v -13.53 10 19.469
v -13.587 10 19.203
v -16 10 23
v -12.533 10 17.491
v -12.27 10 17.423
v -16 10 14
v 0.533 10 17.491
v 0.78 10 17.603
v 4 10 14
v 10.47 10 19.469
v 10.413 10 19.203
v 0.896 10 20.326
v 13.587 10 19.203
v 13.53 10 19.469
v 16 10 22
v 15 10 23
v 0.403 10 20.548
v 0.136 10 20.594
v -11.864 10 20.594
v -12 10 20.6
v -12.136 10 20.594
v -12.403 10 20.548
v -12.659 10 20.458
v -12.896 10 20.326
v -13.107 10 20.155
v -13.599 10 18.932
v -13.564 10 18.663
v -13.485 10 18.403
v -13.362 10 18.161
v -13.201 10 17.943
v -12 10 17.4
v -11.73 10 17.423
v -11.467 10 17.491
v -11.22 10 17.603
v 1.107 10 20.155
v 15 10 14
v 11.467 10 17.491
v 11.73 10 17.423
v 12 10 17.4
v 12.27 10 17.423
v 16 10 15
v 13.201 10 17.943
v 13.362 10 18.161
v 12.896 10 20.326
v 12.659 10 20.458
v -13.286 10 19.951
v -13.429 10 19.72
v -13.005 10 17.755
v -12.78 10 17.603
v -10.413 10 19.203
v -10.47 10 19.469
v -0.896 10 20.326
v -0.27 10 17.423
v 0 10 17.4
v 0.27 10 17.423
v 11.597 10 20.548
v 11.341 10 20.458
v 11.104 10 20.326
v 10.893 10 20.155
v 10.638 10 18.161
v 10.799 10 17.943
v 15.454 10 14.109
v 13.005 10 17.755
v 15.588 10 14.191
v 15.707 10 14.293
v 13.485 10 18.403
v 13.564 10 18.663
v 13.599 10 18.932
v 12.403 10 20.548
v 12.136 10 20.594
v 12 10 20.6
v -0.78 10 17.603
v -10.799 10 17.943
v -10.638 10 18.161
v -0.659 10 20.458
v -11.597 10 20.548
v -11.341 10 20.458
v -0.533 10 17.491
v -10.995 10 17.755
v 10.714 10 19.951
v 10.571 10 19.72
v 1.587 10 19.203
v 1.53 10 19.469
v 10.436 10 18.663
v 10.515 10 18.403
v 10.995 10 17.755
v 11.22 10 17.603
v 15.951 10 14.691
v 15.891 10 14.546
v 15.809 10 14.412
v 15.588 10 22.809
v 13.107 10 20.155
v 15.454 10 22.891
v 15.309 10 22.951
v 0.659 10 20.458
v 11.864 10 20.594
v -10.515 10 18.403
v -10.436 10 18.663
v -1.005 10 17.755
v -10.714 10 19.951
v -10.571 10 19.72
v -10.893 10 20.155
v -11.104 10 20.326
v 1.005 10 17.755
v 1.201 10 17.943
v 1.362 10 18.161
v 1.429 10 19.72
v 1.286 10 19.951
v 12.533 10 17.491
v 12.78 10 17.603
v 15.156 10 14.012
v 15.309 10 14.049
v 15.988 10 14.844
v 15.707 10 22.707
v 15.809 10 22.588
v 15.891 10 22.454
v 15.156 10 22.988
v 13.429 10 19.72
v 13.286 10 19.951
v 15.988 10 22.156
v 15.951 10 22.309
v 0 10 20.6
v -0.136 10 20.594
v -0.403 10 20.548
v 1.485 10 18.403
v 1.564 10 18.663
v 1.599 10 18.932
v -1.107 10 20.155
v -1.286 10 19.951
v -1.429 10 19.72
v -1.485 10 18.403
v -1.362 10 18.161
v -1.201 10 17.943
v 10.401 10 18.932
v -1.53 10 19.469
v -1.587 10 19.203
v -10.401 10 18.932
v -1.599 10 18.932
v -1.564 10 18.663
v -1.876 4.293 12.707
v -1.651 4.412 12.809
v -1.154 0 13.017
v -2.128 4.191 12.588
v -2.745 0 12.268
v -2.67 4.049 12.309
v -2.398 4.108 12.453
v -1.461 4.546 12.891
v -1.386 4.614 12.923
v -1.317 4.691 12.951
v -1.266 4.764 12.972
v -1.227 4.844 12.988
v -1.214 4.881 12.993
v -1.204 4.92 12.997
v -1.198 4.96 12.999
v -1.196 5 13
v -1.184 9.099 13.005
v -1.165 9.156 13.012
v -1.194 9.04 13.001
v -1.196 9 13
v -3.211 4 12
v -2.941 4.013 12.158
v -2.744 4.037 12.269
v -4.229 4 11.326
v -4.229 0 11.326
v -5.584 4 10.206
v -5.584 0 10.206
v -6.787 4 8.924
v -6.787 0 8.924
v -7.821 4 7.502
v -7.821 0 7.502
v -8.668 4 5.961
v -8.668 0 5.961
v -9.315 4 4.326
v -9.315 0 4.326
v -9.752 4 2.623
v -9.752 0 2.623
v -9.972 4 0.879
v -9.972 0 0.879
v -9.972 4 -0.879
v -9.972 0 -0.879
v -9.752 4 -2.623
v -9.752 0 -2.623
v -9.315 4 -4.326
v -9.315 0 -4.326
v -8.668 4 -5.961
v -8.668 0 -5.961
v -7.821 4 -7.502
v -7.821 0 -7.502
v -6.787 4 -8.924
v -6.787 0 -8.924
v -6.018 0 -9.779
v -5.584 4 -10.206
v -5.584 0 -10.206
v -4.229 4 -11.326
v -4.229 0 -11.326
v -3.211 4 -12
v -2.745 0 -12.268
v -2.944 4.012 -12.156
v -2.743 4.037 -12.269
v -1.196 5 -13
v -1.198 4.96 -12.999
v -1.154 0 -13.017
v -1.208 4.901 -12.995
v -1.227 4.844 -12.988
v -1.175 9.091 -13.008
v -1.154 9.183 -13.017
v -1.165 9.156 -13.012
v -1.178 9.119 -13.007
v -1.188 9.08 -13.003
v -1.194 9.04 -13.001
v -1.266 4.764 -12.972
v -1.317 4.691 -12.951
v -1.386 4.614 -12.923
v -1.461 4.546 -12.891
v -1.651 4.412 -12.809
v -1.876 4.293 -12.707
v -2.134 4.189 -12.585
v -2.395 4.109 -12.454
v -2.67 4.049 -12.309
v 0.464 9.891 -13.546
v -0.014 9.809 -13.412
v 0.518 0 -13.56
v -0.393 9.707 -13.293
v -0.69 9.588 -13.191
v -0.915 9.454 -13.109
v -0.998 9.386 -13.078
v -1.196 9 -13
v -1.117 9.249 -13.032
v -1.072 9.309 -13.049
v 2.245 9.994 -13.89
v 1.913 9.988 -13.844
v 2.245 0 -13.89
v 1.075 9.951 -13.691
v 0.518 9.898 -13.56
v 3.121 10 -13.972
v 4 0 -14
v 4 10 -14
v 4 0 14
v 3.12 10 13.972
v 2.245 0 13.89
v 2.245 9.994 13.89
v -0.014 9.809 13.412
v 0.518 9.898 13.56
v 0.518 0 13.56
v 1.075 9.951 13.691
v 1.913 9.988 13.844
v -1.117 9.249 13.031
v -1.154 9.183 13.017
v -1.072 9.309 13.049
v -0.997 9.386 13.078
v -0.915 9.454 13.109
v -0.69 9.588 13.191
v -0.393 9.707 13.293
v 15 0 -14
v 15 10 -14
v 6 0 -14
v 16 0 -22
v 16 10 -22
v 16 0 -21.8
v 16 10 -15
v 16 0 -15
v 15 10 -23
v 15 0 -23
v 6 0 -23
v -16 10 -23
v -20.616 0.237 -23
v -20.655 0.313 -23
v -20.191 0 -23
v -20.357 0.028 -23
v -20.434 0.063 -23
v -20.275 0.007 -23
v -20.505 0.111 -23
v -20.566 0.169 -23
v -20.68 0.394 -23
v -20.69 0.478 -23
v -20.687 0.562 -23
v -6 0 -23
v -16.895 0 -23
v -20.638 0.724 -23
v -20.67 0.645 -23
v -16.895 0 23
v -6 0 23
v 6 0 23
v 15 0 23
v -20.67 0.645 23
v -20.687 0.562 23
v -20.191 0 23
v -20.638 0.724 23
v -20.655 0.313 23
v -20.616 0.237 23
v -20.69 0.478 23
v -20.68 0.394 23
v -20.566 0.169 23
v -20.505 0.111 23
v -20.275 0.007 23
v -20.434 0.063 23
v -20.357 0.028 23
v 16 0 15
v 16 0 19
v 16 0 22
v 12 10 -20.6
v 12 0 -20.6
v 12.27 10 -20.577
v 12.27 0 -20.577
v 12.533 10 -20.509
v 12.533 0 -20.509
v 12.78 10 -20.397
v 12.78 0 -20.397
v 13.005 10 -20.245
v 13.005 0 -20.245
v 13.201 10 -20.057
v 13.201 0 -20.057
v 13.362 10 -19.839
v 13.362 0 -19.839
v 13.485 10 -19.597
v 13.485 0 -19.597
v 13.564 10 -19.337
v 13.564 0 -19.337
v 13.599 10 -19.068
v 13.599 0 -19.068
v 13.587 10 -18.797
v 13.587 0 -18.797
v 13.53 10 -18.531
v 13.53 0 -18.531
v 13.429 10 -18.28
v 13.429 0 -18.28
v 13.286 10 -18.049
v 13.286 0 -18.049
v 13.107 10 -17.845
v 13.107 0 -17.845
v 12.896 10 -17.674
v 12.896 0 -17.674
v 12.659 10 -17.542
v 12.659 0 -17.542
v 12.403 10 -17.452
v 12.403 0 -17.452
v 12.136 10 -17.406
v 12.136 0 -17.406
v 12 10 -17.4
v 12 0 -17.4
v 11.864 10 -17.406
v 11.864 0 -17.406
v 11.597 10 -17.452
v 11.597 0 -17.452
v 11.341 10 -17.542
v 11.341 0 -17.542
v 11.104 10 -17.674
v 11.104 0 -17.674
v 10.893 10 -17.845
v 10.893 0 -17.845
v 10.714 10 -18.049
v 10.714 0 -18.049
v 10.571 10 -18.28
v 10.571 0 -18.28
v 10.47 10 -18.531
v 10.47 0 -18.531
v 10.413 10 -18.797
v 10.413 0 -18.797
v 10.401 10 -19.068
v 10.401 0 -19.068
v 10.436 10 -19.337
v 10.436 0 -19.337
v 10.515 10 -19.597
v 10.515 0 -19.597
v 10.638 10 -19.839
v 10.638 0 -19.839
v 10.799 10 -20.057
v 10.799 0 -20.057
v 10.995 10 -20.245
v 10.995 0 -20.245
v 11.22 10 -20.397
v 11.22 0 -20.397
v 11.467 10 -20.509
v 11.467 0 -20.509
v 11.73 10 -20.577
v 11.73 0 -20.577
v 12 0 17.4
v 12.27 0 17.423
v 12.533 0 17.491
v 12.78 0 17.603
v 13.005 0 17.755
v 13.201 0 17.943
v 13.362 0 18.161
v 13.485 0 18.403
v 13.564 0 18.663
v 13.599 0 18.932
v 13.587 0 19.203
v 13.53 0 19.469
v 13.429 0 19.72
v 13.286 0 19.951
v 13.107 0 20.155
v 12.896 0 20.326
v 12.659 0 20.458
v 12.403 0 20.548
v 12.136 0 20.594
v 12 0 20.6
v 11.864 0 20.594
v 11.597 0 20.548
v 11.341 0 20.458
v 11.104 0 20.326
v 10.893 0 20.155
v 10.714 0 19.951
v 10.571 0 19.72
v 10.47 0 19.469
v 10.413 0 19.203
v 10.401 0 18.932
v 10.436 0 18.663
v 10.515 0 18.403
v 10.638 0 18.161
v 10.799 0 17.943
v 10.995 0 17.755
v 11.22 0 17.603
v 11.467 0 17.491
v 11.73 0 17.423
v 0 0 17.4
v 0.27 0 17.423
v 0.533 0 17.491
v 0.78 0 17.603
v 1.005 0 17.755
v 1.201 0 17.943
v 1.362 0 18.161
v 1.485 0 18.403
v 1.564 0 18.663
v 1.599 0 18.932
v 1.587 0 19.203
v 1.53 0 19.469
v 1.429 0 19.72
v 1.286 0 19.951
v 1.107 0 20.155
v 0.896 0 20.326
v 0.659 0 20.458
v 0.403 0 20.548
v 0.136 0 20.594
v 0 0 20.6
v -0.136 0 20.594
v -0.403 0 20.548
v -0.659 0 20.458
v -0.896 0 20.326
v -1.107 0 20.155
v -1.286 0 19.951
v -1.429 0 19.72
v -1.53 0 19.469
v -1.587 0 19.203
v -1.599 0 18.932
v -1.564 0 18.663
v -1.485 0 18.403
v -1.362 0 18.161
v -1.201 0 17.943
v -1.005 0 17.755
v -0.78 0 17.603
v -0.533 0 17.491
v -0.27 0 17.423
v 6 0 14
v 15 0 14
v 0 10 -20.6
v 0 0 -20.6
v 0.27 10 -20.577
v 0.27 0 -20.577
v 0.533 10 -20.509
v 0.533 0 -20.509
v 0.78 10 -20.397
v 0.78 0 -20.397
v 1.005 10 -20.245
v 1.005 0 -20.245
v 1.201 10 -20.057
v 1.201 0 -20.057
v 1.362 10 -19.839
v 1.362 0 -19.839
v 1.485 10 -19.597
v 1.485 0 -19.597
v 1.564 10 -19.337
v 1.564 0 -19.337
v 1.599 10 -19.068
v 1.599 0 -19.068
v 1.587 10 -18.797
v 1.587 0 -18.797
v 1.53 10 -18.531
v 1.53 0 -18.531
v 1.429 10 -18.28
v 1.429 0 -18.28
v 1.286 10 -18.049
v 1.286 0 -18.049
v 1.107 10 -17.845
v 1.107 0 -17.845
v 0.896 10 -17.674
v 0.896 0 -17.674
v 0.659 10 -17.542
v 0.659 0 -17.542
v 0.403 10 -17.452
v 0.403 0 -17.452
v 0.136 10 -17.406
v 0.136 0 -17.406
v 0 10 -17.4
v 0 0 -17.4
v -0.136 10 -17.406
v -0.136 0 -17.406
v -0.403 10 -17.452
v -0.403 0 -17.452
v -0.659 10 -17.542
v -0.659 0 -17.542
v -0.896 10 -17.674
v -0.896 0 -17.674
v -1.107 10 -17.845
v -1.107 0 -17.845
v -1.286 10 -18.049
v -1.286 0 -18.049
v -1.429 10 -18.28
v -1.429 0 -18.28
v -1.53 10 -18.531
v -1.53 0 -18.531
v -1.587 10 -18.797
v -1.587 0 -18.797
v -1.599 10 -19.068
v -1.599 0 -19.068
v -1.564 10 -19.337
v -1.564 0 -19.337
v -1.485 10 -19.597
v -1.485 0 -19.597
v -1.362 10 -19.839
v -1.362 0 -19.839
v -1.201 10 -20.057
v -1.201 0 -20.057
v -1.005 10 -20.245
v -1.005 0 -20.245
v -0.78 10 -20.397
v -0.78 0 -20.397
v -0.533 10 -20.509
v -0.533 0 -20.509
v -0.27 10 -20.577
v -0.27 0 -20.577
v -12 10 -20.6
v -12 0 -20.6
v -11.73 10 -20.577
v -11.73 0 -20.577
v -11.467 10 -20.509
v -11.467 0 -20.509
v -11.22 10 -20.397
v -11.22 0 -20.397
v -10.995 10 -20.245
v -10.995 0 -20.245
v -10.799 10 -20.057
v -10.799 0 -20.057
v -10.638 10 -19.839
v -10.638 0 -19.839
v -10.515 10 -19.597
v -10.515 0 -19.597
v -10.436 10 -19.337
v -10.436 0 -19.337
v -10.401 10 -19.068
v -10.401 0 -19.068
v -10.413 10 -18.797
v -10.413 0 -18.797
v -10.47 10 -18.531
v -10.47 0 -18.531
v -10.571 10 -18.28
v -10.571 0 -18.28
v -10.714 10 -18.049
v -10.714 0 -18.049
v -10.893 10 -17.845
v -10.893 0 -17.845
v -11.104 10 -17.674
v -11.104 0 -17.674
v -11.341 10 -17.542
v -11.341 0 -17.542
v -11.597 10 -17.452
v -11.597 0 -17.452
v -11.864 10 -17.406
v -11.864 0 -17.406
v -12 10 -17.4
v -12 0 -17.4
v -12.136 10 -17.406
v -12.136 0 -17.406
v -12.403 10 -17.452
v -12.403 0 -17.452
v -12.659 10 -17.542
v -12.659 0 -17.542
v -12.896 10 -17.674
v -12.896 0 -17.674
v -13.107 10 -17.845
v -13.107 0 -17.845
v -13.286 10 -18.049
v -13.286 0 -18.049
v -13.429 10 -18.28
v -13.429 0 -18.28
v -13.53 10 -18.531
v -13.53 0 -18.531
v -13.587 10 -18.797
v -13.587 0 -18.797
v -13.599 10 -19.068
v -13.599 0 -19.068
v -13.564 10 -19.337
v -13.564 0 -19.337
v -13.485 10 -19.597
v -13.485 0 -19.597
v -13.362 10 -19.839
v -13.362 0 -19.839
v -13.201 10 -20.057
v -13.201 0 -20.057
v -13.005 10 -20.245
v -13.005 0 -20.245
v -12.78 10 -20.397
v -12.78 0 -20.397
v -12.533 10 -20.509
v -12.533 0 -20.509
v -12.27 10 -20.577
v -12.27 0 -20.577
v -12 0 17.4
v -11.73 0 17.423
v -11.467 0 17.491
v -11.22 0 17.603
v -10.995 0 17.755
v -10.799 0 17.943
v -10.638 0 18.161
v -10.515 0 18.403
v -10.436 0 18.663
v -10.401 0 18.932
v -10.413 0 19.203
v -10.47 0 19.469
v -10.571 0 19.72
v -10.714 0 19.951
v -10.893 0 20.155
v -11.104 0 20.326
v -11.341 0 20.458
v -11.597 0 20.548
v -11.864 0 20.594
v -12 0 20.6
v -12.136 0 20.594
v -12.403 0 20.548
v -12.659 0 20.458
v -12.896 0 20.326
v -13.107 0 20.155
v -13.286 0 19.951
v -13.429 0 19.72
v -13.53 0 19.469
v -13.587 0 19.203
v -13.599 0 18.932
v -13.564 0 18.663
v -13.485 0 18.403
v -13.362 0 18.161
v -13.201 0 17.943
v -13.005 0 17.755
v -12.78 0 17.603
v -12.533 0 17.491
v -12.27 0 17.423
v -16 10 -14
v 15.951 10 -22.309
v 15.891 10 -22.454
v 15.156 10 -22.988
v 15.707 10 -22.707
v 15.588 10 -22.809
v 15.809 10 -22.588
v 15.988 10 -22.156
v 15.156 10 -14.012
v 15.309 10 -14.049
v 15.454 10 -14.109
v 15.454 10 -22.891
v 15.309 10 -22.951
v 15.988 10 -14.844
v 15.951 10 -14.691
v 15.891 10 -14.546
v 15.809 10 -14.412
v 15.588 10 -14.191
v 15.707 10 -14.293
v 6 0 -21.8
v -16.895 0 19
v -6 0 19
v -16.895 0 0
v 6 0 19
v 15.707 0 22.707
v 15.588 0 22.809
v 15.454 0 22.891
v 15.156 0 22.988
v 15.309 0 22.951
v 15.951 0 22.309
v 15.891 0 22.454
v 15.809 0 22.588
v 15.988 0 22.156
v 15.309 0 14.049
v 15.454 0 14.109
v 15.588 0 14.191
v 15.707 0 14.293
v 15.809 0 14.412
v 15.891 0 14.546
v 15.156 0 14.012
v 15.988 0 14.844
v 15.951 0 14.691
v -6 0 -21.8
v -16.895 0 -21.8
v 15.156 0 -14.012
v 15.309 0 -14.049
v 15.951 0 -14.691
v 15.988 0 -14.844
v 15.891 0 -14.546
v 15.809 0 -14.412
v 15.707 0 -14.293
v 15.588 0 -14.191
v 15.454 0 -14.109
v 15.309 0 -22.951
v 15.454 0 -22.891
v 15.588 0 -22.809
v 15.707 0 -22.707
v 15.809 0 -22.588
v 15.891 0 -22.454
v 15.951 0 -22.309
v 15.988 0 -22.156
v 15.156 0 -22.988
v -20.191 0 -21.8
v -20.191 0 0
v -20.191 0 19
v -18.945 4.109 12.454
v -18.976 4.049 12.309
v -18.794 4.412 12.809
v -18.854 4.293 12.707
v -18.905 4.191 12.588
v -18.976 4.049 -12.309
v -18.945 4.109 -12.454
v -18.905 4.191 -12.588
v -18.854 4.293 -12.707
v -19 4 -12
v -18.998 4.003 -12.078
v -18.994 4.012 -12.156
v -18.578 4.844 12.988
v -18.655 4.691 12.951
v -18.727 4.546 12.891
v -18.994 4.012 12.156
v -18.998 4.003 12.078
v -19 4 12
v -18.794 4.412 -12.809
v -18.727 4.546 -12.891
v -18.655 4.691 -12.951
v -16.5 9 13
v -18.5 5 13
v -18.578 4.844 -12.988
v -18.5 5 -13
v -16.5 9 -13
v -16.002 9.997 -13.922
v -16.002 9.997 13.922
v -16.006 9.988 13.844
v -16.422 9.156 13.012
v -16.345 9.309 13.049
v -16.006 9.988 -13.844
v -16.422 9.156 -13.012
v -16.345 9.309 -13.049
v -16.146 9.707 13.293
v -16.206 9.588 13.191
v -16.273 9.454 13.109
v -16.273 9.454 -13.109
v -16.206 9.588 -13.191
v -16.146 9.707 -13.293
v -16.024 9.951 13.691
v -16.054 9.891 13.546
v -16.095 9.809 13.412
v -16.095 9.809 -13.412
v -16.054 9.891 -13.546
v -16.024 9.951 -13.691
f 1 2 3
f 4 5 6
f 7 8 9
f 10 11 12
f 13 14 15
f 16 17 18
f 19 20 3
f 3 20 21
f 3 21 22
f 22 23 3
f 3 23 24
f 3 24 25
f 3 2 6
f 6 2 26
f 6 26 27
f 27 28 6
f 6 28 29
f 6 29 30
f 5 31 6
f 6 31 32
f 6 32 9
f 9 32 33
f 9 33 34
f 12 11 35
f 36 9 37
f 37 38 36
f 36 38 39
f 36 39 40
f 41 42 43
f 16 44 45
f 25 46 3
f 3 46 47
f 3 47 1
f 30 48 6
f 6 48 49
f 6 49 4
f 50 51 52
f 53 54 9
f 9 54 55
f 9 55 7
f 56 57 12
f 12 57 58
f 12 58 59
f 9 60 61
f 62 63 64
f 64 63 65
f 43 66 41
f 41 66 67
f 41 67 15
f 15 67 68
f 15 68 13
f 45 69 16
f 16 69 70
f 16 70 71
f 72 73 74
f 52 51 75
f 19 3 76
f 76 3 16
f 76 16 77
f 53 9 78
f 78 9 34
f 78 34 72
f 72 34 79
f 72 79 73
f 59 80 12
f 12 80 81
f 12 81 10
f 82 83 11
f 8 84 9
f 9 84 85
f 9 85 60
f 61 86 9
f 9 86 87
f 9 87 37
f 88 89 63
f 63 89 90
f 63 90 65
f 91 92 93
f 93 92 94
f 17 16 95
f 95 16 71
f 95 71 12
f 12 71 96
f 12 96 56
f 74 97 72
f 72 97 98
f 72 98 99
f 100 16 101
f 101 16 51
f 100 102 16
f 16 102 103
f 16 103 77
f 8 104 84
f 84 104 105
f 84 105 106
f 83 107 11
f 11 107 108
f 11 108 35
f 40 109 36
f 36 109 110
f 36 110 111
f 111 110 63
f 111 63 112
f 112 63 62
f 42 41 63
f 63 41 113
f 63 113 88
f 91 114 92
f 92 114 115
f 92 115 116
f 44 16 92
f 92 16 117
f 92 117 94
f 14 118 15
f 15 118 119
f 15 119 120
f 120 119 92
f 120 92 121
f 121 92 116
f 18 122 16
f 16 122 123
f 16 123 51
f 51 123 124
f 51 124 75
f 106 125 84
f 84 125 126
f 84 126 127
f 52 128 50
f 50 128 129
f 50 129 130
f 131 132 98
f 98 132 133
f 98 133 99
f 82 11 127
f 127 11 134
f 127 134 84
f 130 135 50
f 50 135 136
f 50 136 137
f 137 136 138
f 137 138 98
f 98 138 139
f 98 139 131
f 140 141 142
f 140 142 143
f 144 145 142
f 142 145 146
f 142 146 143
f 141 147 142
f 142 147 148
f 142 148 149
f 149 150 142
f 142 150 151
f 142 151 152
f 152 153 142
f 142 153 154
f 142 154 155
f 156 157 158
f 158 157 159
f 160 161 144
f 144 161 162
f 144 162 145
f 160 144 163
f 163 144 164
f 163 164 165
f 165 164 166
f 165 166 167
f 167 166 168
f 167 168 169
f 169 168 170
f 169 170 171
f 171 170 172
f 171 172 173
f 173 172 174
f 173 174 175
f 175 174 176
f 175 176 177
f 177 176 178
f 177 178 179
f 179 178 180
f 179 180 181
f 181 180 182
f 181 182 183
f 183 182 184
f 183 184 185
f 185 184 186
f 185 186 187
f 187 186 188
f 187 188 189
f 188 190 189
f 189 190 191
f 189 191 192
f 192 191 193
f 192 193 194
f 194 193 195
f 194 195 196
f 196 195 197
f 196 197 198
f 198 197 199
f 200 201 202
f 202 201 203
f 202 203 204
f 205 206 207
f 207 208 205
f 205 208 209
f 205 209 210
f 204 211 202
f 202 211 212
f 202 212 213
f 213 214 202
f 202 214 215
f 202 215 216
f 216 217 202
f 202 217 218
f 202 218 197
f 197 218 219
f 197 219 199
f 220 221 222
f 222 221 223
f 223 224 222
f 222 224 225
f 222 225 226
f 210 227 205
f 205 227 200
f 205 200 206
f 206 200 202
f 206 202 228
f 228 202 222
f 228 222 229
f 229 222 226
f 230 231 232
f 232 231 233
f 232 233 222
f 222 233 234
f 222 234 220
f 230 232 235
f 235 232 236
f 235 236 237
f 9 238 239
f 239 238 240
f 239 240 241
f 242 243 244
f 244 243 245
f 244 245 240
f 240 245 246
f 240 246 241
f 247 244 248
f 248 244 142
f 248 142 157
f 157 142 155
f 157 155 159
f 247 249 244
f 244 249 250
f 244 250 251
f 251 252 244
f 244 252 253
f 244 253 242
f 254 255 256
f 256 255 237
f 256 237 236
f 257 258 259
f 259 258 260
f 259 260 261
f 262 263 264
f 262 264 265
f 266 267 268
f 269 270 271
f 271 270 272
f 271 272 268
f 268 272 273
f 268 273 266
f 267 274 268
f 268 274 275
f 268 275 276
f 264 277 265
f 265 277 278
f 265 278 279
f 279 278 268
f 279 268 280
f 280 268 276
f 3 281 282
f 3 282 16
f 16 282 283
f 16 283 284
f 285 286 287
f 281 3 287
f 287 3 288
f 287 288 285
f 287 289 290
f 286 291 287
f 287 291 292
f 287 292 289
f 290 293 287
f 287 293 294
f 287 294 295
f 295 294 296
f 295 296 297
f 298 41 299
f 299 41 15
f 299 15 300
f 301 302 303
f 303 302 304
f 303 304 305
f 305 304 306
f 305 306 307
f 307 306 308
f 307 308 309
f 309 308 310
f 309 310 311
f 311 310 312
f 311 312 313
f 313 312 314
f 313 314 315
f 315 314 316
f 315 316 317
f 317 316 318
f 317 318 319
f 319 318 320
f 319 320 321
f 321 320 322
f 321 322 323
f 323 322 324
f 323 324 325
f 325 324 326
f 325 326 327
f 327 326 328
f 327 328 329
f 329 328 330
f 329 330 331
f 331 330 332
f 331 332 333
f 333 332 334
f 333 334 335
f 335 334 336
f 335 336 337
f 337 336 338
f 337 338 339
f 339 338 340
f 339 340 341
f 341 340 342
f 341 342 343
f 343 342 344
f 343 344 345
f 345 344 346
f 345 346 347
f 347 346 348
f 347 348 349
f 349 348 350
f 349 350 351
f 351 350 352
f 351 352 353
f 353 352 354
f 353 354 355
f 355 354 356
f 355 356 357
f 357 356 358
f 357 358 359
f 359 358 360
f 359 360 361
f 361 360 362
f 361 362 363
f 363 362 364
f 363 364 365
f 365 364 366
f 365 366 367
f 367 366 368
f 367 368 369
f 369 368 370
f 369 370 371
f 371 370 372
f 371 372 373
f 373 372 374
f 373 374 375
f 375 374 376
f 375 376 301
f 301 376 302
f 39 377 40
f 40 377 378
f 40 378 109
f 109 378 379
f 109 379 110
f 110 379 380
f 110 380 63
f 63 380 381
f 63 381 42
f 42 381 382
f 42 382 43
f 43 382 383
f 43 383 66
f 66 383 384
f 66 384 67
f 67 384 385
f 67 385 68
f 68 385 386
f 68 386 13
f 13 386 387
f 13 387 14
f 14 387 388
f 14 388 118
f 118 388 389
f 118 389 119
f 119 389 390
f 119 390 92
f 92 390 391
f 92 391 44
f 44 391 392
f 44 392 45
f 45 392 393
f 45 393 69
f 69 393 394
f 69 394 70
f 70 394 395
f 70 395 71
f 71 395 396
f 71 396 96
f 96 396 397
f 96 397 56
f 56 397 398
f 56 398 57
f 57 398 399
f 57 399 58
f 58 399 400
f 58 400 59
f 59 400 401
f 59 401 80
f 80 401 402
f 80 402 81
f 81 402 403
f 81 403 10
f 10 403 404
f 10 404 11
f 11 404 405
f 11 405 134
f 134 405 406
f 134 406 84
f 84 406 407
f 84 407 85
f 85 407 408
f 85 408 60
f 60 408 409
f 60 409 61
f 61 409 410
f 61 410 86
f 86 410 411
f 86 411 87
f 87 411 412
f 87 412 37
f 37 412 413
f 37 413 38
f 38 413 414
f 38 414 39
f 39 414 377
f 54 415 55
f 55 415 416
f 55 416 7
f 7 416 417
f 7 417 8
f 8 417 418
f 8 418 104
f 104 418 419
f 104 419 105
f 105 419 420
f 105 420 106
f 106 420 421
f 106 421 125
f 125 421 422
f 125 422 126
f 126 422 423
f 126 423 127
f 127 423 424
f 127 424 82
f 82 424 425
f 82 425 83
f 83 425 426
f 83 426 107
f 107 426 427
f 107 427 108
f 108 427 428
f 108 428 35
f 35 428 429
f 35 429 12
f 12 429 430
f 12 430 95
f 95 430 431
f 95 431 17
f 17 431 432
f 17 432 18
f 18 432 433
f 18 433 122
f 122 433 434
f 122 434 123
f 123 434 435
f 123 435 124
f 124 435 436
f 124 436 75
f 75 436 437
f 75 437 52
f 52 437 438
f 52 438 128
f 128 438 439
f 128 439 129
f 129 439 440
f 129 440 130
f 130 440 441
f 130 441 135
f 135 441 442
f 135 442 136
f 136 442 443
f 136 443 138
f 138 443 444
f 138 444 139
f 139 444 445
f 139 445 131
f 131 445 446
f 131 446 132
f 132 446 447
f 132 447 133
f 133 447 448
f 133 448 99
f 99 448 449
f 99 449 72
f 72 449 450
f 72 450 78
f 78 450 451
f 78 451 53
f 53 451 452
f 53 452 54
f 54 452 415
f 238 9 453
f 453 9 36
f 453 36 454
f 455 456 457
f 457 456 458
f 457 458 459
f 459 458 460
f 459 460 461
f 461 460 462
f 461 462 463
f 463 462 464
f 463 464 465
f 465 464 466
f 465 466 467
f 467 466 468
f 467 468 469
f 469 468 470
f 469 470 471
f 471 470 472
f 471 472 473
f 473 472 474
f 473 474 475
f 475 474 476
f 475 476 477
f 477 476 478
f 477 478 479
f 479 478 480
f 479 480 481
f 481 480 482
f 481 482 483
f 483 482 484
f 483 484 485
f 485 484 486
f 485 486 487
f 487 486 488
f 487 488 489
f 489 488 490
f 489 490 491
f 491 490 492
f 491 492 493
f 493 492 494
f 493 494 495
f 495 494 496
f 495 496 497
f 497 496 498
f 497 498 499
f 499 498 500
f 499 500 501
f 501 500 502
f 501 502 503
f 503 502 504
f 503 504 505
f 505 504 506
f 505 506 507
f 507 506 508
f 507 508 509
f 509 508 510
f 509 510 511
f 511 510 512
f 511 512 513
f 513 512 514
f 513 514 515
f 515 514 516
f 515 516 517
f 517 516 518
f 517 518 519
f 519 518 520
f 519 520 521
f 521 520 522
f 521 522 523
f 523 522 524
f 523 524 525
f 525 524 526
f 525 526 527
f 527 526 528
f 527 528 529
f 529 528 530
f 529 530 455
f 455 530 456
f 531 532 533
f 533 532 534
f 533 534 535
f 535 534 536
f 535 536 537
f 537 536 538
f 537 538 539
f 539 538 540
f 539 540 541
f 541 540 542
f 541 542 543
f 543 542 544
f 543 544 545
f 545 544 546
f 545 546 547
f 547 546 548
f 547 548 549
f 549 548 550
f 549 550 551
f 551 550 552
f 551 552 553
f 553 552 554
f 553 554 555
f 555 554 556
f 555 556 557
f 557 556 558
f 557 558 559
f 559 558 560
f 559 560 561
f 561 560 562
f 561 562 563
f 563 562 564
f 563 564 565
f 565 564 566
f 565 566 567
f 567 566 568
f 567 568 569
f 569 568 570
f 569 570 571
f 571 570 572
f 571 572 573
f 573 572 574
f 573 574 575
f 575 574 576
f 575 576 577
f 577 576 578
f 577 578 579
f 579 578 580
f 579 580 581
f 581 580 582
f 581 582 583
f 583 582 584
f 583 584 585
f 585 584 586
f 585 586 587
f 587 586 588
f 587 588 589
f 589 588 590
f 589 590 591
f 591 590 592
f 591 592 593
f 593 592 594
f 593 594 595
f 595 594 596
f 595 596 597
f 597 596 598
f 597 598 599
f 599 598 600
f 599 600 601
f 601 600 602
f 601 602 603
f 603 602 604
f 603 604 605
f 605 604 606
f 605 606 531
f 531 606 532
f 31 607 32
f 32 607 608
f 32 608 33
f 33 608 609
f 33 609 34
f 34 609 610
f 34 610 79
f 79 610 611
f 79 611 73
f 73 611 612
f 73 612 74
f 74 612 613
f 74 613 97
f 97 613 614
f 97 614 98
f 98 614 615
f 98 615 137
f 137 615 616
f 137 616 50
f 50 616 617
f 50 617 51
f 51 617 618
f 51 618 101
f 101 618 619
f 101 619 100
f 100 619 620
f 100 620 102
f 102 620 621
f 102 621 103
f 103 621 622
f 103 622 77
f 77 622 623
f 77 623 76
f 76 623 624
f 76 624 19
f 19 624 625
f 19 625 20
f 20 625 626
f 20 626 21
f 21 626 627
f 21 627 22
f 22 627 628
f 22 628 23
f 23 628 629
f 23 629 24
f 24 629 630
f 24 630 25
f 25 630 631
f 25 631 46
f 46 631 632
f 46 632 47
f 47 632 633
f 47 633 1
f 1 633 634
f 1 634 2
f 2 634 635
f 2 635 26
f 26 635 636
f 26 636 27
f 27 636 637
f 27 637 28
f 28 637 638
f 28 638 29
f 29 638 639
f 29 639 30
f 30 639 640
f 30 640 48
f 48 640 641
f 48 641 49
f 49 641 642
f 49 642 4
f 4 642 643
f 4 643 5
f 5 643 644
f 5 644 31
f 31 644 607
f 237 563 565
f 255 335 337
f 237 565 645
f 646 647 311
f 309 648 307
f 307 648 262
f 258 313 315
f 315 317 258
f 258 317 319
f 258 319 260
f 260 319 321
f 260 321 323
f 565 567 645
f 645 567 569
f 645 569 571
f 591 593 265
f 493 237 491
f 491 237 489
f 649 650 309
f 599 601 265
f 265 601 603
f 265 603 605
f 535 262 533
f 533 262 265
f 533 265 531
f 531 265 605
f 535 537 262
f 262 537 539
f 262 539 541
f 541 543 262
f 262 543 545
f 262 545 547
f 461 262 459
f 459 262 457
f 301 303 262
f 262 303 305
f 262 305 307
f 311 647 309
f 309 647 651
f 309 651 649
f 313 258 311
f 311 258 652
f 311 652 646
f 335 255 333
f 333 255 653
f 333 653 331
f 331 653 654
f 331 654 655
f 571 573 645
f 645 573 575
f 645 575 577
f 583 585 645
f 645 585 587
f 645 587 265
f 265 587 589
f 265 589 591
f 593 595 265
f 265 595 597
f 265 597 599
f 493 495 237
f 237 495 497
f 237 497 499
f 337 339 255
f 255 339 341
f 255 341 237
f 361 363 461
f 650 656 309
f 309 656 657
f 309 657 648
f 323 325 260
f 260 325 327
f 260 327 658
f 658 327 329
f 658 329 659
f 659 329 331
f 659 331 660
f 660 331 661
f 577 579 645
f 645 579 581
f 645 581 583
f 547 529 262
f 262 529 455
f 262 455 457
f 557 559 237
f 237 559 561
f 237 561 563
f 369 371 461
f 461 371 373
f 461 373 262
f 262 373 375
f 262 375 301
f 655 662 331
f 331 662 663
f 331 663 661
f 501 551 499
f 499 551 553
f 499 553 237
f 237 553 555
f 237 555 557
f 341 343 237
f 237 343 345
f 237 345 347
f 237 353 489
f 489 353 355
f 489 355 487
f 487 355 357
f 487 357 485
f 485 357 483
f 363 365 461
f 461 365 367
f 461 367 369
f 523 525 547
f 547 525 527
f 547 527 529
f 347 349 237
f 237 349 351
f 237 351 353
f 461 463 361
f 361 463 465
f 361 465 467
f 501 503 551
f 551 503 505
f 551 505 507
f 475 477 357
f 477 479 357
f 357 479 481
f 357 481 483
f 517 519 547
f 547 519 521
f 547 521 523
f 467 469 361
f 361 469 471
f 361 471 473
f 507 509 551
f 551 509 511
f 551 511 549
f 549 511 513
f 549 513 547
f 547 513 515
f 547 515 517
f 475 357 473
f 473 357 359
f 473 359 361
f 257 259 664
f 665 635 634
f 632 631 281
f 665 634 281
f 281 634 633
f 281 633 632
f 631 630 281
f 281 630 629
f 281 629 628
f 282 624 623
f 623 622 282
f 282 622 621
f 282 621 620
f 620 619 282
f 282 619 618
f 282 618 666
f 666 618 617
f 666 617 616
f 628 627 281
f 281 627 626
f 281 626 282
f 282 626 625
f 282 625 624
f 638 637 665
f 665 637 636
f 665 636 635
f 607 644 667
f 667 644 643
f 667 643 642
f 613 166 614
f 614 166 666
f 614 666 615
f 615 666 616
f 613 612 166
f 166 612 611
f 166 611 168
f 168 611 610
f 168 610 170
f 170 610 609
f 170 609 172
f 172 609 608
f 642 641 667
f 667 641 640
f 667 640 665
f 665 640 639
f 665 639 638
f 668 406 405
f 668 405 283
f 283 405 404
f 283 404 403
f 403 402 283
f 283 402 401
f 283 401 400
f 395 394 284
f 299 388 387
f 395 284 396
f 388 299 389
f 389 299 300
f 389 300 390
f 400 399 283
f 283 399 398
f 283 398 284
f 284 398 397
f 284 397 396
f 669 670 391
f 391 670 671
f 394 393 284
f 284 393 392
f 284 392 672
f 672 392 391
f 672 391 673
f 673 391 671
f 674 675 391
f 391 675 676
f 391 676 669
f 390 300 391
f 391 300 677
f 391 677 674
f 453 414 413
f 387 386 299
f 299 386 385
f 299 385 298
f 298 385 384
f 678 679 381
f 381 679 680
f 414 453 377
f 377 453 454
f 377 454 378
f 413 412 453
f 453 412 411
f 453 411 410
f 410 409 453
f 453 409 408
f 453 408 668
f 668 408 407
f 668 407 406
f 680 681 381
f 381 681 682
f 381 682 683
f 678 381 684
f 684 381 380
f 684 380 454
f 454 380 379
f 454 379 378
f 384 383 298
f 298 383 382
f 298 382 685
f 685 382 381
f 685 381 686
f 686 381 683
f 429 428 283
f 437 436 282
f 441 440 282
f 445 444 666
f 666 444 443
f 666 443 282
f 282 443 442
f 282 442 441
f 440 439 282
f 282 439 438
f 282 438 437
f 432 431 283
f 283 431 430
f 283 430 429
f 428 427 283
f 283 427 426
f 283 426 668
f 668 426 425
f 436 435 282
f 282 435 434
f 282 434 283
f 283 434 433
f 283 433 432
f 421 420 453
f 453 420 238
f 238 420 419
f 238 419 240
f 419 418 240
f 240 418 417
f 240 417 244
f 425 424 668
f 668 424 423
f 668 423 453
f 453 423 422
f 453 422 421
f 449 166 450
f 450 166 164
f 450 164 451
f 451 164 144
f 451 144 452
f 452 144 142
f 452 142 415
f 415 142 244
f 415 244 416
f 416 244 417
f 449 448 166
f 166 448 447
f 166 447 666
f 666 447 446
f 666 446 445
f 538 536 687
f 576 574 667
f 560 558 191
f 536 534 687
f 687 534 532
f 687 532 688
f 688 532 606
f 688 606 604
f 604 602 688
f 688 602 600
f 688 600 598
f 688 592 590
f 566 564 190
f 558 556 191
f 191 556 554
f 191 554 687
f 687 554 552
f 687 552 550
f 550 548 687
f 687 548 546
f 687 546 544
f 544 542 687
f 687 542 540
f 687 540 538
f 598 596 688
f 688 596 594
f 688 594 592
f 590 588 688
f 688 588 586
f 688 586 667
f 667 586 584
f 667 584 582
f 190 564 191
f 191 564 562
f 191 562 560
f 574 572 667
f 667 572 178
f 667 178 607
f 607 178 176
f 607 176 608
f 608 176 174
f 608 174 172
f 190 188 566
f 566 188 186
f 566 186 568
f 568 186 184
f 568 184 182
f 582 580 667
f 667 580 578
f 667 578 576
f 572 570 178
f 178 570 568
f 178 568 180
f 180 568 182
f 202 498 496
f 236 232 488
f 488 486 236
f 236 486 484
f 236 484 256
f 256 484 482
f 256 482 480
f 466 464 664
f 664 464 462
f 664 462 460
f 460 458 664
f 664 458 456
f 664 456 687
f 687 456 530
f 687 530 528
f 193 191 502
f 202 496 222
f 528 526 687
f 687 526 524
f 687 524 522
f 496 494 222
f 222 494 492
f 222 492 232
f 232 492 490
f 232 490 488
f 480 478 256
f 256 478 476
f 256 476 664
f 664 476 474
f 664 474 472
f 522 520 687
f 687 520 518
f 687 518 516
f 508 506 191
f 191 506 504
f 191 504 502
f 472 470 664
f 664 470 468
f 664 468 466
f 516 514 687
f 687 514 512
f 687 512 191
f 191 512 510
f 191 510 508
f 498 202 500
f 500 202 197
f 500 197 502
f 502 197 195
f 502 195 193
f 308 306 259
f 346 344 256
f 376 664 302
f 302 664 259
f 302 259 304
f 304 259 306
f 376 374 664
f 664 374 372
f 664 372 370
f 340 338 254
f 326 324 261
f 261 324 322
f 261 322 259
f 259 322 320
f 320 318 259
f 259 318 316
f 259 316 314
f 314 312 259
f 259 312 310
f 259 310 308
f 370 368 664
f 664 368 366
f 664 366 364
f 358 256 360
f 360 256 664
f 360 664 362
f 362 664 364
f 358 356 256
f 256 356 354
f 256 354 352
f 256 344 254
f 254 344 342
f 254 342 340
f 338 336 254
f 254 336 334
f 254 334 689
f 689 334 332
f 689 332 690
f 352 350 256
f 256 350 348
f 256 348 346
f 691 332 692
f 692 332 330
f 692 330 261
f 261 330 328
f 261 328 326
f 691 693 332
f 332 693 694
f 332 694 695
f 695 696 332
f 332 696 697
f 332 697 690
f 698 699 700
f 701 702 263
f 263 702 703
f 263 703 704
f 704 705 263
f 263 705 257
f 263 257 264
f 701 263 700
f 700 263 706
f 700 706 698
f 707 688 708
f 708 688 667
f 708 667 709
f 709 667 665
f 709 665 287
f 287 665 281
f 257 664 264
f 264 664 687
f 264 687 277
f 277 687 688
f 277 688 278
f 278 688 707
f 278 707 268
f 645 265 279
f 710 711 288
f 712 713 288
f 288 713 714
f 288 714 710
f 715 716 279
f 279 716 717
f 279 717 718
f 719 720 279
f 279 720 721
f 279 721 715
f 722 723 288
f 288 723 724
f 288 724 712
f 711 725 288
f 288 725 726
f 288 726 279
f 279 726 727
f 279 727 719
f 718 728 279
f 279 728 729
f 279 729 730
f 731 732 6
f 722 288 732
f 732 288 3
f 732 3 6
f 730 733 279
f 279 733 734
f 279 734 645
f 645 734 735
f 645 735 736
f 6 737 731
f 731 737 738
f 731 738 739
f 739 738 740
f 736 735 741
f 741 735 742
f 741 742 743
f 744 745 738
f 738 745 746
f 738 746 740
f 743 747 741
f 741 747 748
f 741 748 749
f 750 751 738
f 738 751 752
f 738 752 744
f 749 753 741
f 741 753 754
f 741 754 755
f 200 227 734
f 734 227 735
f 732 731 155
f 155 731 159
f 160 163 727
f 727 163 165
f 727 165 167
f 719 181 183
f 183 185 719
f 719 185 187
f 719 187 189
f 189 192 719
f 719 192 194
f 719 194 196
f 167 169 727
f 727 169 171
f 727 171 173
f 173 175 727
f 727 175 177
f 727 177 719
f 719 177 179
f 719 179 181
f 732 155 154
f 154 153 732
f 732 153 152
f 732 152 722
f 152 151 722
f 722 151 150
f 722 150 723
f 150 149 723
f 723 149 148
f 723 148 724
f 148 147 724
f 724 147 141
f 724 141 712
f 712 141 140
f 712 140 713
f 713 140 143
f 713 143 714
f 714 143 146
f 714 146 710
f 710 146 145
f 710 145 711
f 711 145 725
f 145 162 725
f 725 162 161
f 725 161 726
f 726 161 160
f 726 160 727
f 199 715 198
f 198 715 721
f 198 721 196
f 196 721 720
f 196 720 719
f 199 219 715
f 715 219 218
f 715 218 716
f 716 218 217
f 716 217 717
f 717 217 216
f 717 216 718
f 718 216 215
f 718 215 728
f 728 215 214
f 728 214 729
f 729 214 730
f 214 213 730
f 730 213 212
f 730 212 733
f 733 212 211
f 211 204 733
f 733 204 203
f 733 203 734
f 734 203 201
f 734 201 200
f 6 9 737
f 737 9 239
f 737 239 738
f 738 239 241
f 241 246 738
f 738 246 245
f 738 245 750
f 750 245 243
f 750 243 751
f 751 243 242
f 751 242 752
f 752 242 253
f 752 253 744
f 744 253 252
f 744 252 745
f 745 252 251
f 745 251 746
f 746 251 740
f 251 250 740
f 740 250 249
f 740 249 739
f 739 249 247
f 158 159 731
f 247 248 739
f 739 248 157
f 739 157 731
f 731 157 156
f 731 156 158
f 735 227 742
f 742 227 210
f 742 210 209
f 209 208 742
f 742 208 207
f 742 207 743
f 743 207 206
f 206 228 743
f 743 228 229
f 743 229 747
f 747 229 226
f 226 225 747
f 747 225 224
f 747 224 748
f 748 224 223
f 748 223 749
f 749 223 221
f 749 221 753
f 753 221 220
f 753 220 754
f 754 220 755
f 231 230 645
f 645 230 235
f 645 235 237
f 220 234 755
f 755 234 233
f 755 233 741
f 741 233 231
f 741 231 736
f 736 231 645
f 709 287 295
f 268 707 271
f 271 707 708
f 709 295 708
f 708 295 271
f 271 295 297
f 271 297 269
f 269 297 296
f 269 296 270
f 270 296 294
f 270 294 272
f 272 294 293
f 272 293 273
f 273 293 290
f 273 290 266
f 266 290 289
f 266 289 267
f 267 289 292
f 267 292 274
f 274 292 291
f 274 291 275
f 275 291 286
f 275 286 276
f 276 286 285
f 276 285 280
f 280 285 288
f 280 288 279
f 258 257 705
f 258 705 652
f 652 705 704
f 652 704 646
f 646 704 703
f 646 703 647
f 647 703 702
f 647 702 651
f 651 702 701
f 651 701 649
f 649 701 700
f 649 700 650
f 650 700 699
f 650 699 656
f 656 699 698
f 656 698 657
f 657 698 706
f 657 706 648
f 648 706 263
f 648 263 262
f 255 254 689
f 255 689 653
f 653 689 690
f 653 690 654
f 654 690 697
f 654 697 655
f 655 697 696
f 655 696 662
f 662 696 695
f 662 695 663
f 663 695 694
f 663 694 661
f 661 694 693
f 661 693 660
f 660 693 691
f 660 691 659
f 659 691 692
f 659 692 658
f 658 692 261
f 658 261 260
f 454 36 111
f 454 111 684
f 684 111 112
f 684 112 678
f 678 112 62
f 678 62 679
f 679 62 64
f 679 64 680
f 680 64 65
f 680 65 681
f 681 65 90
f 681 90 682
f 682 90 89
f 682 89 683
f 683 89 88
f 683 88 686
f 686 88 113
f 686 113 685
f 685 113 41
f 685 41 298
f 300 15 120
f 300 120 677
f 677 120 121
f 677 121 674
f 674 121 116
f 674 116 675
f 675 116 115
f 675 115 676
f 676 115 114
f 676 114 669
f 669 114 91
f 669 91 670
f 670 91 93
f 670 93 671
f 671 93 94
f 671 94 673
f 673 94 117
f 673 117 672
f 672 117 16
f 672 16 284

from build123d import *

# Parameters (mm, degrees)
SKETCH2_R           = 1.6
BOSS_EXTRUDE1_DEPTH = 10
BOSS_EXTRUDE2_DEPTH = 46
CUT_EXTRUDE1_START  = -6
SKETCH5_W           = 5
SKETCH5_H           = 13
CUT_EXTRUDE1_DEPTH  = 6
FILLET1_R           = 1
FILLET2_R           = 0.5
FILLET3_R           = 1


with BuildPart() as part:
    # Sketch2 → Boss-Extrude1 (new body)
    with BuildSketch(Plane(origin=(0, 0, 0), x_dir=(1, 0, 0), z_dir=(0, 1, 0))):
        with BuildLine():
            ThreePointArc((-10, 0), (-7.22497216, 8.366600265), (0, 13.416407865))
            ThreePointArc((0, 13.416407865), (1.97882585, 13.853333716), (4, 14))
            Line((4, 14), (16, 14))
            Line((16, 14), (16, 23))
            Line((16, 23), (-16, 23))
            Line((-16, 23), (-16, -23))
            Line((-16, -23), (16, -23))
            Line((16, -23), (16, -14))
            Line((16, -14), (4, -14))
            ThreePointArc((4, -14), (-5.899494937, -9.899494937), (-10, 0))
        make_face()
        with Locations(Location((-12, -19, 0), (0, 0, 270))):
            Circle(SKETCH2_R, mode=Mode.SUBTRACT)
        with Locations(Location((0, -19, 0), (0, 0, 270))):
            Circle(SKETCH2_R, mode=Mode.SUBTRACT)
        with Locations(Location((12, -19, 0), (0, 0, 270))):
            Circle(SKETCH2_R, mode=Mode.SUBTRACT)
        with BuildLine():
            ThreePointArc((-10.4, 19), (-10.86862915, 17.86862915), (-12, 17.4))
            ThreePointArc((-12, 17.4), (-13.13137085, 20.13137085), (-10.4, 19))
        make_face(mode=Mode.SUBTRACT)
        with BuildLine():
            ThreePointArc((1.6, 19), (1.13137085, 17.86862915), (0, 17.4))
            ThreePointArc((0, 17.4), (-1.13137085, 20.13137085), (1.6, 19))
        make_face(mode=Mode.SUBTRACT)
        with Locations(Location((12, 19, 0), (0, 0, 270))):
            Circle(SKETCH2_R, mode=Mode.SUBTRACT)
    extrude(amount=BOSS_EXTRUDE1_DEPTH)

    # Sketch4 → Boss-Extrude2 (add)
    with BuildSketch(Plane.XY.offset(23)):
        Polygon((-21, 0), (-16, 10), (-16, 0), align=None)
    extrude(amount=-BOSS_EXTRUDE2_DEPTH)

    # Sketch5 → Cut-Extrude1 (cut)
    with BuildSketch(Plane(origin=(0, 10, 0), x_dir=(1, 0, 0), z_dir=(0, 1, 0)).offset(CUT_EXTRUDE1_START)):
        with BuildLine():
            Line((-16, 0), (-10, 0))
            ThreePointArc((-10, 0), (-7.591939741, 7.850282354), (-1.196152423, 13))
            Line((-1.196152423, 13), (-16, 13))
            Line((-16, 13), (-16, 0))
        make_face()
        with Locations((-18.5, 6.5)):
            Rectangle(SKETCH5_W, SKETCH5_H)
        with BuildLine():
            ThreePointArc((-1.196152423, -13), (-7.591939741, -7.850282354), (-10, 0))
            Line((-10, 0), (-16, 0))
            Line((-16, 0), (-16, -13))
            Line((-16, -13), (-1.196152423, -13))
        make_face()
        with Locations((-18.5, -6.5)):
            Rectangle(SKETCH5_W, SKETCH5_H)
    extrude(amount=CUT_EXTRUDE1_DEPTH, mode=Mode.SUBTRACT)

    # Fillet1
    fillet1_edges = [part.edges().sort_by_distance(p)[0] for p in [
        (-8.598076211, 10, 13),
        (-10.098076211, 4, 13),
        (-10.098076211, 4, -13),
        (-8.598076211, 10, -13),
    ]]
    fillet(fillet1_edges, radius=FILLET1_R - 0.0001)  # a hair under: the kernel refuses the full size

    # Fillet2
    fillet2_edges = [part.edges().sort_by_distance(p)[0] for p in [
        (-21, 0, 0),
    ]]
    fillet(fillet2_edges, radius=FILLET2_R)

    # Fillet3
    fillet3_edges = [part.edges().sort_by_distance(p)[0] for p in [
        (16, 5, 14),
        (16, 5, 23),
        (16, 5, -23),
        (16, 5, -14),
    ]]
    fillet(fillet3_edges, radius=FILLET3_R)


solid = part.part
